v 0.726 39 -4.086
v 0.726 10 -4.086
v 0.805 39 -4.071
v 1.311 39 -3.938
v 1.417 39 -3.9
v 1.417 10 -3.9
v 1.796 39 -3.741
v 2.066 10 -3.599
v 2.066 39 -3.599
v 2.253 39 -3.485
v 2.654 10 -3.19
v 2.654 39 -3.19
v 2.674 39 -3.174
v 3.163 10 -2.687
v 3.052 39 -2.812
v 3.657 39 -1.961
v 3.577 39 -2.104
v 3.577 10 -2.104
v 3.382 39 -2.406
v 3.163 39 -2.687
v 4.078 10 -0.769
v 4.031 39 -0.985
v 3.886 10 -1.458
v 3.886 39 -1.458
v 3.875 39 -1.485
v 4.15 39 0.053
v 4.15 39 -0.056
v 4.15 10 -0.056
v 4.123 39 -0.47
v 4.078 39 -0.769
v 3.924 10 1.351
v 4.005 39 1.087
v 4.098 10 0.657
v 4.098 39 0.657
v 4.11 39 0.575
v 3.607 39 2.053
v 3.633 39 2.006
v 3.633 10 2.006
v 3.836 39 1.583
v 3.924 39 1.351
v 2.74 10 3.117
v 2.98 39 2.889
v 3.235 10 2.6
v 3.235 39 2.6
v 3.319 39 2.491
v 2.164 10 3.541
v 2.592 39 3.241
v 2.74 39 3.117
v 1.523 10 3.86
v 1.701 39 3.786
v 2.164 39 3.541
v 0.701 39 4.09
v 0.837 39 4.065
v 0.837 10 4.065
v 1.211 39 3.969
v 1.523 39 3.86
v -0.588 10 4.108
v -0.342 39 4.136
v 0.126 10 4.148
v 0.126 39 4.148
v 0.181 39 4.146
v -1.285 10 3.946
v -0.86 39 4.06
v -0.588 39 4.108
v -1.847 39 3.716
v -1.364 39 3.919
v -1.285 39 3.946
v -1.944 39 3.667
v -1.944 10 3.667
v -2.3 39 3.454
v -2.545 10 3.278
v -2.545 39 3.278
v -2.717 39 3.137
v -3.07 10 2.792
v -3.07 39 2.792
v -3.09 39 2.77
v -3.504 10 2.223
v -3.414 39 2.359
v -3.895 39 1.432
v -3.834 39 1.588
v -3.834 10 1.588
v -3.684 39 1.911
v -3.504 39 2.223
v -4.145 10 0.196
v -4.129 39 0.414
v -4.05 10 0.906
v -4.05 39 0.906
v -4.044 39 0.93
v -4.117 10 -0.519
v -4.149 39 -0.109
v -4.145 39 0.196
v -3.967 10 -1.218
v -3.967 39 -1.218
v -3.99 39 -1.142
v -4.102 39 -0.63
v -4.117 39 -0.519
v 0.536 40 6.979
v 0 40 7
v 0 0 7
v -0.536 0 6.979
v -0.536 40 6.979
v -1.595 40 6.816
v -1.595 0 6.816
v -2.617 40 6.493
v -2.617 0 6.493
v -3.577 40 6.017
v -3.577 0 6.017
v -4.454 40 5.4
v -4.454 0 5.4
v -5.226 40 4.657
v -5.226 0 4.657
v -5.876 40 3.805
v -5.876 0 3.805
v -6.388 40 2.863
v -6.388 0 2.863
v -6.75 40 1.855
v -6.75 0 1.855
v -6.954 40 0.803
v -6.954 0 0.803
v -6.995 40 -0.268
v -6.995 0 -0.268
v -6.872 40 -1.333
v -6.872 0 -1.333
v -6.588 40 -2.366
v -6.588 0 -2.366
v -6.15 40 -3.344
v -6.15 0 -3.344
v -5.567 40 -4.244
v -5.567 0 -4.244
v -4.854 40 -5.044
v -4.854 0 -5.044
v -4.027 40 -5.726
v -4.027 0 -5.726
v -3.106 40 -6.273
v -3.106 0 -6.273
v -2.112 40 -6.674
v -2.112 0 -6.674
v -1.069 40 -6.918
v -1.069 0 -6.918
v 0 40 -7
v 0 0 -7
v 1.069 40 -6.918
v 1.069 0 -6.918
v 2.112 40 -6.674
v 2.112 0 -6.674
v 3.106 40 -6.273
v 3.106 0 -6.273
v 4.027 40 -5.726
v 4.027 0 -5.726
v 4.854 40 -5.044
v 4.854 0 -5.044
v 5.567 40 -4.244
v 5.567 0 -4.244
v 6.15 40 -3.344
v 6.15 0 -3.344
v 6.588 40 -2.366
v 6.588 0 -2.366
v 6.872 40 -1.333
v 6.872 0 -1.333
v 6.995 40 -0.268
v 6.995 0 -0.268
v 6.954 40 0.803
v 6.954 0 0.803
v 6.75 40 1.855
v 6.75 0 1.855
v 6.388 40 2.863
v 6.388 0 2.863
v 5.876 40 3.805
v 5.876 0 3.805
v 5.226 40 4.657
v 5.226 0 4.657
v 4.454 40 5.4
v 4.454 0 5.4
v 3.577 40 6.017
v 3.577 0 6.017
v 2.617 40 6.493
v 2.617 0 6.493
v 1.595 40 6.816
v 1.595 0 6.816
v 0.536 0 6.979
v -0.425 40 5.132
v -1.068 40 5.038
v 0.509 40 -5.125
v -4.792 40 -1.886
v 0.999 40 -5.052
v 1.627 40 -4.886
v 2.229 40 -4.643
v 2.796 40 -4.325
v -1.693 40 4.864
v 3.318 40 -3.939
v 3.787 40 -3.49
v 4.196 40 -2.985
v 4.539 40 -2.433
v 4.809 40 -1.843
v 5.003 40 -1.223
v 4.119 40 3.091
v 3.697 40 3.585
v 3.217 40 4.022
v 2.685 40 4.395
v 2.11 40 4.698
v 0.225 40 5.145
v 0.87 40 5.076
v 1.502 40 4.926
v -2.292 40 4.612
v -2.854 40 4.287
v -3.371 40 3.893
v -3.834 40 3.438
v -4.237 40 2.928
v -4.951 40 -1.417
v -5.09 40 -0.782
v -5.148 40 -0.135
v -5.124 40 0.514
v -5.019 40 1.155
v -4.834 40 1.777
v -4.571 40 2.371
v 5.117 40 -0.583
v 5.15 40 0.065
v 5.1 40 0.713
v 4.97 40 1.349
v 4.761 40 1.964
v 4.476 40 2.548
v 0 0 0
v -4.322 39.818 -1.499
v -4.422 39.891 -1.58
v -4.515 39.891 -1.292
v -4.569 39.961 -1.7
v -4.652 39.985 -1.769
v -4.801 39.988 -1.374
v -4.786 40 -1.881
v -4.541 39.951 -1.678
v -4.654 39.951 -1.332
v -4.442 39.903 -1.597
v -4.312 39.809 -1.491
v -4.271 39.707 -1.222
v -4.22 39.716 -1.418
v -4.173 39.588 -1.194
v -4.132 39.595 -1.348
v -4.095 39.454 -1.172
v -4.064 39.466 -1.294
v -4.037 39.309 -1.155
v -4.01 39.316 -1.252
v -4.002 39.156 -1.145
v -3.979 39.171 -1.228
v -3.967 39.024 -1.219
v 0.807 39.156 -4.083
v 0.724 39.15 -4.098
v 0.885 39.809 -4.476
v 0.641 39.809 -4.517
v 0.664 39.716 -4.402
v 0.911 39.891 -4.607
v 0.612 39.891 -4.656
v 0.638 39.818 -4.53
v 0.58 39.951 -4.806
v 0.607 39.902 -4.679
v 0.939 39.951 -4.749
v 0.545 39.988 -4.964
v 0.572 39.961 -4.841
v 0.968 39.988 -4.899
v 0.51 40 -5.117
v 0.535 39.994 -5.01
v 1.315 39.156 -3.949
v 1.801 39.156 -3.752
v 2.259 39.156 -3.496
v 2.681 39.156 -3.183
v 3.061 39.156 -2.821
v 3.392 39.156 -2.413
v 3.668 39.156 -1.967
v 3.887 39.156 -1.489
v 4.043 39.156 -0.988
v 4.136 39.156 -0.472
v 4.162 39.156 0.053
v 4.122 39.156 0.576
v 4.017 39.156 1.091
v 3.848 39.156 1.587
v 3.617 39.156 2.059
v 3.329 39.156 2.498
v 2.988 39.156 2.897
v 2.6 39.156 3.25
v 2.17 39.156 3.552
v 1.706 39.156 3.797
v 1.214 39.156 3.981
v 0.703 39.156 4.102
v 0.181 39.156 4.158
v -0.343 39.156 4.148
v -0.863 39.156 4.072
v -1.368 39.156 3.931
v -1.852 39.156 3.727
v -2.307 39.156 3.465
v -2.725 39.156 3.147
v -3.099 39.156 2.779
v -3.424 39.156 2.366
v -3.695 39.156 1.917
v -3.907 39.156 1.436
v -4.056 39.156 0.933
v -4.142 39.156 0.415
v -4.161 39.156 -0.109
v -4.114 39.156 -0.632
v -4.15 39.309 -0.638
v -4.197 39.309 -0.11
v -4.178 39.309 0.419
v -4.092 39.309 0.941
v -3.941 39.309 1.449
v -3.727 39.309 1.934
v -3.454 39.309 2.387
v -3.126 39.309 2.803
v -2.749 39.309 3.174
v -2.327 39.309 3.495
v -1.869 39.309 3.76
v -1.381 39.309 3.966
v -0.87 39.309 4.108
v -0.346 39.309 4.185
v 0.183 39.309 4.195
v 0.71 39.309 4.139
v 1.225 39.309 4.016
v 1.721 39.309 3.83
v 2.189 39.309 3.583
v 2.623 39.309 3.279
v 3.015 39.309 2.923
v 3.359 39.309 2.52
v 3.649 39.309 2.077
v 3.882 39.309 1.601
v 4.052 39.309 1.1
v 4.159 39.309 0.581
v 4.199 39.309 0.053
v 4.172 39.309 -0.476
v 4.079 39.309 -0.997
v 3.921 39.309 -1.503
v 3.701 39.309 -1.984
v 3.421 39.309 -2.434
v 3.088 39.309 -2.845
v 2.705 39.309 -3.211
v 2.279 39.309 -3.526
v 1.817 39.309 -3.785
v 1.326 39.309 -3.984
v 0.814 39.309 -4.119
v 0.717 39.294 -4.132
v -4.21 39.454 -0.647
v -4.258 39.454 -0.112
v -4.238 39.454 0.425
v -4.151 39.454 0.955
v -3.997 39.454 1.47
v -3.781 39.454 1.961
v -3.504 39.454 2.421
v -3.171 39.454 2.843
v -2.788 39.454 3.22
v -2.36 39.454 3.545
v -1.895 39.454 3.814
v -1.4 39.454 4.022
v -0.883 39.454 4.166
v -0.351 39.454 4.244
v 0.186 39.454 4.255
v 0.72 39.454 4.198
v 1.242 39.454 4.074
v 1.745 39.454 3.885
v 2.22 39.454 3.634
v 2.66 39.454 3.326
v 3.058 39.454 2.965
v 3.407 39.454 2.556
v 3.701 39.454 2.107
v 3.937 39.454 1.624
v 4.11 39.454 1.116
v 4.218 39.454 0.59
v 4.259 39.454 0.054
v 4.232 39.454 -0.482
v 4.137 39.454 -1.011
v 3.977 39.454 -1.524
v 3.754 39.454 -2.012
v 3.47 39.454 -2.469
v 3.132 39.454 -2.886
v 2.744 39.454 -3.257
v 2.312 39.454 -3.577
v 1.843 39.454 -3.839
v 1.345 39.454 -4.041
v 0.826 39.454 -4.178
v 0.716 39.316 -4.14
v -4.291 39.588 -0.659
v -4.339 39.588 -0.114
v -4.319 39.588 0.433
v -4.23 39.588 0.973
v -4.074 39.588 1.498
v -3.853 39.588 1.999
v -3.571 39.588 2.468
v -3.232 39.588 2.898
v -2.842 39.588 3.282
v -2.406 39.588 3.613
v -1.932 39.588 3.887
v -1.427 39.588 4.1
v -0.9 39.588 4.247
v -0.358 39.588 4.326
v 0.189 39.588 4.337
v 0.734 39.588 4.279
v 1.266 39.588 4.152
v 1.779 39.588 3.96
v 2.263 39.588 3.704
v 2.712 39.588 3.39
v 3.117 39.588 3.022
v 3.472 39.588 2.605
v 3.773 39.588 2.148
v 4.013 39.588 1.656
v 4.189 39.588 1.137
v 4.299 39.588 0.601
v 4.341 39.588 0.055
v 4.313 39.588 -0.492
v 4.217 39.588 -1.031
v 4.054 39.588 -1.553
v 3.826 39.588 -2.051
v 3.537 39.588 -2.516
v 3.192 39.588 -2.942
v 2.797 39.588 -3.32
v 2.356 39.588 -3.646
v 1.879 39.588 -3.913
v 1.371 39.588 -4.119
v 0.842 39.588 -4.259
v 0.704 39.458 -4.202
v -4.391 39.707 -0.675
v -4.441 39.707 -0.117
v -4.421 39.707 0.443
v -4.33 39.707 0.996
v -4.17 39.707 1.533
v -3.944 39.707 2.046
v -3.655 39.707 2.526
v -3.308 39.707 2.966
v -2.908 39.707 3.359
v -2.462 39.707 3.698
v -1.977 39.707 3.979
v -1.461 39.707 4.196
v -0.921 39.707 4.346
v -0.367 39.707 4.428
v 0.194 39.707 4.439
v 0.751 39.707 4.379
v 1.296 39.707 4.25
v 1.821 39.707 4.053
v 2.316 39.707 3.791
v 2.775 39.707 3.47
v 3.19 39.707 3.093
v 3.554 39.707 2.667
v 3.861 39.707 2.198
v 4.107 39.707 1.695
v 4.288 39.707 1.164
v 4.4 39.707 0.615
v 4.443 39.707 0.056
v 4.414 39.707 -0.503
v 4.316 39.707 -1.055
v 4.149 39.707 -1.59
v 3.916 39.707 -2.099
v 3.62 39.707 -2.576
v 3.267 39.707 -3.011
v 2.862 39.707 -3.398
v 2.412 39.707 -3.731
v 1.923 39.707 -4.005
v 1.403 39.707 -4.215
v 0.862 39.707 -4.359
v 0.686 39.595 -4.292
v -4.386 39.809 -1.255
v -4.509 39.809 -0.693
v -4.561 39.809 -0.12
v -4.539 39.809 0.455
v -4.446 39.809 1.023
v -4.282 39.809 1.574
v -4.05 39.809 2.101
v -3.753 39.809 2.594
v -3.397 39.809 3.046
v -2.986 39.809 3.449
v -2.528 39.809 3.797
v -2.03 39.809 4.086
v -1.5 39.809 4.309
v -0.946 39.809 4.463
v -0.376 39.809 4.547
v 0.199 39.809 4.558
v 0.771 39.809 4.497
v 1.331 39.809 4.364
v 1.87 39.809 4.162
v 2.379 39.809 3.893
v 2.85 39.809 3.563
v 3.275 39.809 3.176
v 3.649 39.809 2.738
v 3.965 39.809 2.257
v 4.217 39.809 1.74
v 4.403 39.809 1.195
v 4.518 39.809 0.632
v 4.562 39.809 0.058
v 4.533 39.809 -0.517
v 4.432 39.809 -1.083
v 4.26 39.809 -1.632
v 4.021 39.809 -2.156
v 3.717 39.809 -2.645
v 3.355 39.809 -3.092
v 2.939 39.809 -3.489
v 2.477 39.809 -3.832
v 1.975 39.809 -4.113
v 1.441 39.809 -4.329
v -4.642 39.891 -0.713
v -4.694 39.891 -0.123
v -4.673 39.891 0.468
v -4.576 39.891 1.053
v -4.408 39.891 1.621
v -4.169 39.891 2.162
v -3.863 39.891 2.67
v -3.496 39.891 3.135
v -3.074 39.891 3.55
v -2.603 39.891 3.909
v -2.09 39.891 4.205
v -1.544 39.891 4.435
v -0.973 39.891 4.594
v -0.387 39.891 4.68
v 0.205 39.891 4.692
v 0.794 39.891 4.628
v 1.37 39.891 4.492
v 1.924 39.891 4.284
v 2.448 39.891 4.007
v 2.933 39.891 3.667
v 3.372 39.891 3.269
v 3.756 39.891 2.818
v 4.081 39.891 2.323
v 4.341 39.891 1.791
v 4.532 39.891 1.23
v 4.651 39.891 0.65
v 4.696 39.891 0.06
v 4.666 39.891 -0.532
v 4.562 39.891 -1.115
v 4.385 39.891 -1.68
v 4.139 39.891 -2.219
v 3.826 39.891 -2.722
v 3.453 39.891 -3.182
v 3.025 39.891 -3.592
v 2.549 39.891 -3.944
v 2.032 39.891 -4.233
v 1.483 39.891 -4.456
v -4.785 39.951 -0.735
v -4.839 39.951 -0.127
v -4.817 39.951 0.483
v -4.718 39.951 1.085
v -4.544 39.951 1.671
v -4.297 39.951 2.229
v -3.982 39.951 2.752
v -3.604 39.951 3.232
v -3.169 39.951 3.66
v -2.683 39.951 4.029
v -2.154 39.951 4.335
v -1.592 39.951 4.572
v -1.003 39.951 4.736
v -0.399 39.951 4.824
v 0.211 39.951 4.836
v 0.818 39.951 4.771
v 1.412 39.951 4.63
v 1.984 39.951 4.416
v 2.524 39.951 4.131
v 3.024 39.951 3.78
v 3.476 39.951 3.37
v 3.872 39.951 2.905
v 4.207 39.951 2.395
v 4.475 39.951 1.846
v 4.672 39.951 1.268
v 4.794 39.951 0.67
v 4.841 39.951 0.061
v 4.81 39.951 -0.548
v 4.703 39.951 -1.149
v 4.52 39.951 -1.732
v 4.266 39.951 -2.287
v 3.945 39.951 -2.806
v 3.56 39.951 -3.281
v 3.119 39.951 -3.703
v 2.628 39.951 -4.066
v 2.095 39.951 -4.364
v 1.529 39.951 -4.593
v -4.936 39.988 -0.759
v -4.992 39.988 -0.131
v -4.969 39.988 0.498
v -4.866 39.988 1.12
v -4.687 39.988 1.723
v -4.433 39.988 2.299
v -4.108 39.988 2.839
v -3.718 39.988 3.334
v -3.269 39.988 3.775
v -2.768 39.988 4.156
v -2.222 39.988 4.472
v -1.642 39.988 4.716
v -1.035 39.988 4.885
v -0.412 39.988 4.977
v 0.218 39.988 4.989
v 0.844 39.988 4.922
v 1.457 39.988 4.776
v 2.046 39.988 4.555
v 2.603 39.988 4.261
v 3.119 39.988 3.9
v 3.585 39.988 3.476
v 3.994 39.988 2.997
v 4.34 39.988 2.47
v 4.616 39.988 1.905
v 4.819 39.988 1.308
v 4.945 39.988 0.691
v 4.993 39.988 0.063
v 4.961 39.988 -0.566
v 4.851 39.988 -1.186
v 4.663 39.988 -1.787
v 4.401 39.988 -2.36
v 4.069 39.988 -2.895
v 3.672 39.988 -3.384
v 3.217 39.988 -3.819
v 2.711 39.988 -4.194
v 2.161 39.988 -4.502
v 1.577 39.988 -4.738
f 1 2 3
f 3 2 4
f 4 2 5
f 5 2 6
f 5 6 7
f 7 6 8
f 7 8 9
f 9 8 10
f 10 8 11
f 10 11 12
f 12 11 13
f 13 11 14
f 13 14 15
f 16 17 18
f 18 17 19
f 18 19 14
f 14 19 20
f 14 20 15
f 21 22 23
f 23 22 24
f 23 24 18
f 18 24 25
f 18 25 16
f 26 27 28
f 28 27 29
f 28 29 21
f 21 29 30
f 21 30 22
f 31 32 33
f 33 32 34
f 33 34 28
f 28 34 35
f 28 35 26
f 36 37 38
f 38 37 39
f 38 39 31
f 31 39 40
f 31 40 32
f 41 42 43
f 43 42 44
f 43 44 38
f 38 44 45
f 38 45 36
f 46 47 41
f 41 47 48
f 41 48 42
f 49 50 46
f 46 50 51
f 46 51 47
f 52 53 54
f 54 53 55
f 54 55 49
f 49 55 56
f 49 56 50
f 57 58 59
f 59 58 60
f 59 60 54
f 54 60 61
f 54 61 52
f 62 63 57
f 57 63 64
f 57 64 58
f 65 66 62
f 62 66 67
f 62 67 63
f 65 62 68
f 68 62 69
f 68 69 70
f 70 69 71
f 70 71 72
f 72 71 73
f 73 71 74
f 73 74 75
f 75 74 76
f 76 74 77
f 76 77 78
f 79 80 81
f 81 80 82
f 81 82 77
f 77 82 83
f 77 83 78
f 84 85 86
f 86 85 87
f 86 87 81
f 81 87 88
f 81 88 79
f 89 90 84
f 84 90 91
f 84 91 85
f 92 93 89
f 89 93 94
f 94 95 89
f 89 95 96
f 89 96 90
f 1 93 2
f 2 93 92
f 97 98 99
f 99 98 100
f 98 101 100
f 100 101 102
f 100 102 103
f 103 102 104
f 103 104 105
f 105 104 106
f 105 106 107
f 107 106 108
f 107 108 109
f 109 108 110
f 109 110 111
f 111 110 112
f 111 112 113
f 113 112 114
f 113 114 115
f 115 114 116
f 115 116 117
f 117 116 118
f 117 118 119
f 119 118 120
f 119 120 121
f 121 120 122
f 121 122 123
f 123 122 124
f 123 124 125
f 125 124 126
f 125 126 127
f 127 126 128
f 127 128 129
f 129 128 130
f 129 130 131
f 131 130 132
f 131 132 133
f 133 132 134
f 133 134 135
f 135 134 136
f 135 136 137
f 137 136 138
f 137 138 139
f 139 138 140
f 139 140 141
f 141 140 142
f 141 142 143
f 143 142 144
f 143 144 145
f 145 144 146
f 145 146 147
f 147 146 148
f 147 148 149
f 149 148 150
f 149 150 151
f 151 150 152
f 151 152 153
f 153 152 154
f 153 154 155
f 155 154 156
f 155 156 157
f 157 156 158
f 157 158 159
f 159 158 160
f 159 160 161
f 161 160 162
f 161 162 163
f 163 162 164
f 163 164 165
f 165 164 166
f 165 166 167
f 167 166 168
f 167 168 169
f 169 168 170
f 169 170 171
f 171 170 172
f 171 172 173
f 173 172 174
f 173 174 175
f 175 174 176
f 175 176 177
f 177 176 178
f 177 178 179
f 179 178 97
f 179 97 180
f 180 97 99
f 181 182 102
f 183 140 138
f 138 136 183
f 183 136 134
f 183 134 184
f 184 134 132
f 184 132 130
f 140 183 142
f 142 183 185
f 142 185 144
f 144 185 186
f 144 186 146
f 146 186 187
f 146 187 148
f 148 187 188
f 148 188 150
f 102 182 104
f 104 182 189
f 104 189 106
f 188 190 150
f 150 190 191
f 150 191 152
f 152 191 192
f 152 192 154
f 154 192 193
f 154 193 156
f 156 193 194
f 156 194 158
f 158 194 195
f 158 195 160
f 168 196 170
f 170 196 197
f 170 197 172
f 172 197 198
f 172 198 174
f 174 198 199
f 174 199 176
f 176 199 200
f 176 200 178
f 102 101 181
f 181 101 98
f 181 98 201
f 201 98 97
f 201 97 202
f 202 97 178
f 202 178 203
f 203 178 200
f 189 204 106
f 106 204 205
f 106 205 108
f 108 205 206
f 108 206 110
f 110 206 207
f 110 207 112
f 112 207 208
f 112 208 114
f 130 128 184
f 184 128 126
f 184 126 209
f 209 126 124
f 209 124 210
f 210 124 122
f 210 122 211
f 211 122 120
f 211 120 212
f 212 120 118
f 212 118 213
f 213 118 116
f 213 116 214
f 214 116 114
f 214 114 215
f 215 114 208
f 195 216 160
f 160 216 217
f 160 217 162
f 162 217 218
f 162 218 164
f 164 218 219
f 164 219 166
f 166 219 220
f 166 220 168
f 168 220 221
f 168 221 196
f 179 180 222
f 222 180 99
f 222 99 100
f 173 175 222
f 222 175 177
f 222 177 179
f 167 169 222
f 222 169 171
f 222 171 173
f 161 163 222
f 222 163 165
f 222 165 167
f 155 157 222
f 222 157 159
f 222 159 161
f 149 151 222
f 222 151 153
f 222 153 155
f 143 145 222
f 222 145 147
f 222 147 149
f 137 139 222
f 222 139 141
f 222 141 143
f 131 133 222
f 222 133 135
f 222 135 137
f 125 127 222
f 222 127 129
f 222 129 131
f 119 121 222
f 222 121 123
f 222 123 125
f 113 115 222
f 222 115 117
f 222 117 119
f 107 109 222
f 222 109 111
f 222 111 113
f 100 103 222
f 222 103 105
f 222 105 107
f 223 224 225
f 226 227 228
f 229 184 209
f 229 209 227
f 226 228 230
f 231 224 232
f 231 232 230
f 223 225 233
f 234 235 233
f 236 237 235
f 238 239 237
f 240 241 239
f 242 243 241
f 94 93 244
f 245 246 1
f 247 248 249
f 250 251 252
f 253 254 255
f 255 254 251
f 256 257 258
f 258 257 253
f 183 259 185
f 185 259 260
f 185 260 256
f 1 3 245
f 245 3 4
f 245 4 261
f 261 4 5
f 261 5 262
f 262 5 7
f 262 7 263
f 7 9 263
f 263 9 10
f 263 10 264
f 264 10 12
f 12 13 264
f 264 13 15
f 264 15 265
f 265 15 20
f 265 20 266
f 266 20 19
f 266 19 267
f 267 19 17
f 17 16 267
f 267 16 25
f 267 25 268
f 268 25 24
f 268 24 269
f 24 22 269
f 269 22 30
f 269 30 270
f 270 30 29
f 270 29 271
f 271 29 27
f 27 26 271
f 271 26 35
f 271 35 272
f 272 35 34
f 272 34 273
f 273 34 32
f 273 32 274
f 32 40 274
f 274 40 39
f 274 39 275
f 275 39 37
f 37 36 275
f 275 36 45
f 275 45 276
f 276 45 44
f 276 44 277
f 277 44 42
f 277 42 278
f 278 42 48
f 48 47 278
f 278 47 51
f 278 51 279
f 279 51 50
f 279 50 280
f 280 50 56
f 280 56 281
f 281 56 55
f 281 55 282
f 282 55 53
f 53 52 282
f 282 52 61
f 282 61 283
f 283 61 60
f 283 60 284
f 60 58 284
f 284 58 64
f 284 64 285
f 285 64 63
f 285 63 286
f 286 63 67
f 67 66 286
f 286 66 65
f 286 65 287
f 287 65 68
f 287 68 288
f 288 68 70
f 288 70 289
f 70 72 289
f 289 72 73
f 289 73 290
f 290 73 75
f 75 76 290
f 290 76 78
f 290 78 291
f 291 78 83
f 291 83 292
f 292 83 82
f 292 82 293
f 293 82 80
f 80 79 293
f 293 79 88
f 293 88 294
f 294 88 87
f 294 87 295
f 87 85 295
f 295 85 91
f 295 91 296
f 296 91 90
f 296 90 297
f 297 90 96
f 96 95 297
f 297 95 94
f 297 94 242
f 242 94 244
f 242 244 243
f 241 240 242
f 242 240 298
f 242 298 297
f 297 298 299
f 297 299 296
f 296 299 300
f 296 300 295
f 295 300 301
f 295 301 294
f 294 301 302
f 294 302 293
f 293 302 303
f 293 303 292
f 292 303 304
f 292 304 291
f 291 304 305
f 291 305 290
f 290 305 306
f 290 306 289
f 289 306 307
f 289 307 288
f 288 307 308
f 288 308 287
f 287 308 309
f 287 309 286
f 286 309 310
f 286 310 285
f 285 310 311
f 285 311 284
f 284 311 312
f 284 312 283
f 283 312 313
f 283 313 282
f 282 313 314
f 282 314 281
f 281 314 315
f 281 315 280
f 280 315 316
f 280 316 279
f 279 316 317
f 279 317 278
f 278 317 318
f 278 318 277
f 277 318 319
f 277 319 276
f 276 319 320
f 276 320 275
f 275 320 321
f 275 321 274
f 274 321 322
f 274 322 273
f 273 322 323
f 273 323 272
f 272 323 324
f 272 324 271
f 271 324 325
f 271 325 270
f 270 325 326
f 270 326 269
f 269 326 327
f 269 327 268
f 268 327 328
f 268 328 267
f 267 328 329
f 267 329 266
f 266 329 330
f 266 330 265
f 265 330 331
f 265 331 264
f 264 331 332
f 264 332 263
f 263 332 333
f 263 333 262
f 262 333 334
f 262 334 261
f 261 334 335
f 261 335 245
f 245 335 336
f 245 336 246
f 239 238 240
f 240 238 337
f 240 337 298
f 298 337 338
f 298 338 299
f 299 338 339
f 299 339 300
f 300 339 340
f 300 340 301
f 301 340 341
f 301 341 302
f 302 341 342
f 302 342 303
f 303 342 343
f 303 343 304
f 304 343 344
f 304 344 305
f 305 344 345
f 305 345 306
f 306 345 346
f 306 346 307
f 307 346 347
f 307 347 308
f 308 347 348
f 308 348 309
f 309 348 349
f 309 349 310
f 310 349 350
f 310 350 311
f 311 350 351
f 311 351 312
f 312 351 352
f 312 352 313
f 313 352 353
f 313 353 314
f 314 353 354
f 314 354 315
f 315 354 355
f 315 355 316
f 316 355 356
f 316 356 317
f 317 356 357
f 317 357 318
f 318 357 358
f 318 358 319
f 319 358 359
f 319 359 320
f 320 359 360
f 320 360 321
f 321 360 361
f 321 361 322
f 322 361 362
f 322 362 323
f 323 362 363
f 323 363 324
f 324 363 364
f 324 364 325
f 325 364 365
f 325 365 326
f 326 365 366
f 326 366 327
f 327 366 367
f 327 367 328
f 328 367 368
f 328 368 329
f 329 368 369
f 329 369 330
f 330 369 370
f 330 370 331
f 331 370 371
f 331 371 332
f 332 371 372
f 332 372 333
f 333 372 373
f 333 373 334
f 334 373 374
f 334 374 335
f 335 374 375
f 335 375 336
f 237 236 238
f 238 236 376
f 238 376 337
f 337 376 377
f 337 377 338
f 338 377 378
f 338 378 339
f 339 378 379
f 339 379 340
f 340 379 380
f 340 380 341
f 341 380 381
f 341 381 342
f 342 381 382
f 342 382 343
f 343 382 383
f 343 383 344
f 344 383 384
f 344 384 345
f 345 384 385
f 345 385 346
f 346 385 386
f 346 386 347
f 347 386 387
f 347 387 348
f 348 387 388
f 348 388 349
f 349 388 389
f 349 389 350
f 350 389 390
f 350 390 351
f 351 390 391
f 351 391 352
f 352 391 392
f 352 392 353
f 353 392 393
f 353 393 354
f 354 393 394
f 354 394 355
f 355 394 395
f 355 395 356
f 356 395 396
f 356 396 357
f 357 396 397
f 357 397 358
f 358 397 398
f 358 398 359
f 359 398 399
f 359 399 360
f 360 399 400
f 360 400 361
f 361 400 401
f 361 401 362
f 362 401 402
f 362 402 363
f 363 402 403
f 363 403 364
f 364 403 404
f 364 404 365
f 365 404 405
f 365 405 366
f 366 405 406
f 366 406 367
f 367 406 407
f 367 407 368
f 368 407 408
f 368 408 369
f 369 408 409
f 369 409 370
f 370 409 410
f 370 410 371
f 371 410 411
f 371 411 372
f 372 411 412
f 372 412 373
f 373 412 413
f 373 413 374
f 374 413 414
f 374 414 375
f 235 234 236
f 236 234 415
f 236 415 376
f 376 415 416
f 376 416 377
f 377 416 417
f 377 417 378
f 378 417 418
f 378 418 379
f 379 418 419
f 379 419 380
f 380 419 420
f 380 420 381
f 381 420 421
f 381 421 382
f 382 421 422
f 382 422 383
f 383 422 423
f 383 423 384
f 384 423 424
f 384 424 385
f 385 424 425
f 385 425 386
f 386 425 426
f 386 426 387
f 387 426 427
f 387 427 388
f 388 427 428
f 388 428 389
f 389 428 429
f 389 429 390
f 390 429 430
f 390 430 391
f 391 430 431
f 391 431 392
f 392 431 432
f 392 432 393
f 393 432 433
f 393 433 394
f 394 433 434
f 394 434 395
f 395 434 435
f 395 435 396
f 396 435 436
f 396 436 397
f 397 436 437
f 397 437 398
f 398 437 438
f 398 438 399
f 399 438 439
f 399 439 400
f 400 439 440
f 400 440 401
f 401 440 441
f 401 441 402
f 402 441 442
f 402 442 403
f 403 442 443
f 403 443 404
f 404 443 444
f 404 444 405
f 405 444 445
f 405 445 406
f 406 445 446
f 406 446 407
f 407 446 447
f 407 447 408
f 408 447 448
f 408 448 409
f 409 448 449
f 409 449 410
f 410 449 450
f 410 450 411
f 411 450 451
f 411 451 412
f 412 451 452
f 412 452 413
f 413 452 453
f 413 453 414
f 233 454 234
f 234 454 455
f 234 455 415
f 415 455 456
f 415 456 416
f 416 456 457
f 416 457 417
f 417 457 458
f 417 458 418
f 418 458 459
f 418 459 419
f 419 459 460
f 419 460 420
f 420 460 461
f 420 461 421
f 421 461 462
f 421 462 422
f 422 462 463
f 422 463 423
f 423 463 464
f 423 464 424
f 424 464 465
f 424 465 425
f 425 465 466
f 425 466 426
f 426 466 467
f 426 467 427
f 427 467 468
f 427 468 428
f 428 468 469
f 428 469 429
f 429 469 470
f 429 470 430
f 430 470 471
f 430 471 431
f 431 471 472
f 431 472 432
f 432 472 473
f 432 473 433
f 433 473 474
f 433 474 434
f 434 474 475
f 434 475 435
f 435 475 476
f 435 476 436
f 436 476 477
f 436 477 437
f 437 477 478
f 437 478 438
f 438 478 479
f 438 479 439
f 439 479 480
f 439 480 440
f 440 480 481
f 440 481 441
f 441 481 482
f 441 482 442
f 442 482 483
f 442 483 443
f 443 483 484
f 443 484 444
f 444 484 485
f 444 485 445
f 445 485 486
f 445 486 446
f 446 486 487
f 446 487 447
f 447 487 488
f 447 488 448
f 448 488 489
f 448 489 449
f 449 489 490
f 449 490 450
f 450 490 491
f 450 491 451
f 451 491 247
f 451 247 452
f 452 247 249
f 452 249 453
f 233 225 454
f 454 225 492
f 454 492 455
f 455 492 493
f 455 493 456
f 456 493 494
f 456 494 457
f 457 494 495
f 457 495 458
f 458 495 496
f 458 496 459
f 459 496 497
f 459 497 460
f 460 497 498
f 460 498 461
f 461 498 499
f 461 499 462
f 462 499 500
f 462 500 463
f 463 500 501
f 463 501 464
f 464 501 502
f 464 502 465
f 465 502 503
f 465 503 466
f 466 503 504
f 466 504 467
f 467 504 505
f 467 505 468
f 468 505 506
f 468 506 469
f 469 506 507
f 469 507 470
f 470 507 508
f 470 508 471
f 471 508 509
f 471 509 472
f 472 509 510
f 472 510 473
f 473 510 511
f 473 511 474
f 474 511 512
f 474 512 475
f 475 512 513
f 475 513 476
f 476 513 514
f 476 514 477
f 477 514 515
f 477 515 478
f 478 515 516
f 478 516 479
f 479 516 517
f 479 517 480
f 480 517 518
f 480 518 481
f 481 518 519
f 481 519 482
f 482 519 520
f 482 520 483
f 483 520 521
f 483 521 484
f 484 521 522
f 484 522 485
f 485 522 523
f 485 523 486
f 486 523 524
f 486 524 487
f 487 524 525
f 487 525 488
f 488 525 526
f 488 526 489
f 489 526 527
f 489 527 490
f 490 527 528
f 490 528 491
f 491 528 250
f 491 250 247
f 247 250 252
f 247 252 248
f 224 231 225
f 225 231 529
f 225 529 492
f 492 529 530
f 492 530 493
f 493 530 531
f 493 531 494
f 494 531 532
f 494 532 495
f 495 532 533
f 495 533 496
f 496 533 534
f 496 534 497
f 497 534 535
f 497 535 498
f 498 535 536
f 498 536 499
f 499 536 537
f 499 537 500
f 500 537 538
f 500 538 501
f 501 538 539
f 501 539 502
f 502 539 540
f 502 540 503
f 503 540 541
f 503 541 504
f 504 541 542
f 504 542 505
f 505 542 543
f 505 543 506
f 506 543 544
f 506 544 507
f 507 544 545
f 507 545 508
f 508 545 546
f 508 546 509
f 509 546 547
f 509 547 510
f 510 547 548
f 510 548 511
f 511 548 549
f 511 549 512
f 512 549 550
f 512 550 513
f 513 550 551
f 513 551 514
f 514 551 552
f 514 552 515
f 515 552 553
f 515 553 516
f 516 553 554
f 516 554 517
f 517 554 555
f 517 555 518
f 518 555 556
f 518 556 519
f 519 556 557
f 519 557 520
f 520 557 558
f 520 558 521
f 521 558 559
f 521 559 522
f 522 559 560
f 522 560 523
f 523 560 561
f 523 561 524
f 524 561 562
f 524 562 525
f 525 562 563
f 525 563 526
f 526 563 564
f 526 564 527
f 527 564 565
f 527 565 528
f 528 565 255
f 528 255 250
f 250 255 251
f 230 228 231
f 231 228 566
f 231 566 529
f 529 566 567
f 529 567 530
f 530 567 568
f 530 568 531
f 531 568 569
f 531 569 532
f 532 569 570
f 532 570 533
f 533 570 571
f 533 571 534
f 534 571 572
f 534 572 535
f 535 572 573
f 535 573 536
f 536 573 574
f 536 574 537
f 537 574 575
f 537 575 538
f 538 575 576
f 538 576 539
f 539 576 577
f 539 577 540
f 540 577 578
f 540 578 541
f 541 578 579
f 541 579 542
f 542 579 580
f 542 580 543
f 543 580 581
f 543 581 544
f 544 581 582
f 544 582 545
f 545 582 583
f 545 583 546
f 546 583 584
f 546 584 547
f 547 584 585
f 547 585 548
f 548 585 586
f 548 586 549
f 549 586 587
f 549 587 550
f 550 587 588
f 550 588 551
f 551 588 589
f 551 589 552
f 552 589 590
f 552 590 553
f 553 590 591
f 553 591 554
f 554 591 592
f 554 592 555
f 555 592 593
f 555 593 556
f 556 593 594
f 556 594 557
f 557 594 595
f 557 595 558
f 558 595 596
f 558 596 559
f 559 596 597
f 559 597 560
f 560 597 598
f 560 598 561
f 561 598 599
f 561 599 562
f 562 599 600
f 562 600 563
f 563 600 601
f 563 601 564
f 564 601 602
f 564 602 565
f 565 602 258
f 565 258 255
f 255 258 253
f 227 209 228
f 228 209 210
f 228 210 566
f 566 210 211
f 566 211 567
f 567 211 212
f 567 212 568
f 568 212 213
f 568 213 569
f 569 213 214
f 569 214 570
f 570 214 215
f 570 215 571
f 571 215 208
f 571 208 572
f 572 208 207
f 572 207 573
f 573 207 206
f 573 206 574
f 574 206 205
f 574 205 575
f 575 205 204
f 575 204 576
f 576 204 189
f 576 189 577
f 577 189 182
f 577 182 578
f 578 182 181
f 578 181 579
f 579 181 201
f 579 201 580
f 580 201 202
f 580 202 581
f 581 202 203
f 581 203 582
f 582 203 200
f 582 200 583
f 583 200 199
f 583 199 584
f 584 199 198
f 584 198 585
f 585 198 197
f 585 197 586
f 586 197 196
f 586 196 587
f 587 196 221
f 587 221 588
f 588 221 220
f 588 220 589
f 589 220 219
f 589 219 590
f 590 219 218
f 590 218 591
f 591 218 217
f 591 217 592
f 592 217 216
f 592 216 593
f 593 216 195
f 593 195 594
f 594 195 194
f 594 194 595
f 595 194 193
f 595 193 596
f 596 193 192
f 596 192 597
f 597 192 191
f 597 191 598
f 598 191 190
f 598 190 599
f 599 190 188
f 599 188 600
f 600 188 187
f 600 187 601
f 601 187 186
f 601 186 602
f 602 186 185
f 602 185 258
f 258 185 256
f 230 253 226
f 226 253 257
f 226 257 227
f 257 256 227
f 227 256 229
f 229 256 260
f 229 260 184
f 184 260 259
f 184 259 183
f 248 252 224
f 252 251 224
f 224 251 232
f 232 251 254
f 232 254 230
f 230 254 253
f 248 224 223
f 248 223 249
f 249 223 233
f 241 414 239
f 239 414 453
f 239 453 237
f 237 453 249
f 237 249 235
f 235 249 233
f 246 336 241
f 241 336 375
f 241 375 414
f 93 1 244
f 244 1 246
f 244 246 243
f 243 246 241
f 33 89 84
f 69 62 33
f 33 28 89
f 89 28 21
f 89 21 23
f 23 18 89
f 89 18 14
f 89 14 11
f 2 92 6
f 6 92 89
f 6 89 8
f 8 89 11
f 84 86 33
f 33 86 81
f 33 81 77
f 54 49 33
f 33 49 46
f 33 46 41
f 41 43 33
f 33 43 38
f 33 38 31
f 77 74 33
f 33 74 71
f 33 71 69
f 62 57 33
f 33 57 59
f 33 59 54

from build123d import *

# Parameters (mm, degrees)
SKETCH1_R           = 7
BOSS_EXTRUDE1_DEPTH = 40
FILLET1_R           = 1
SKETCH2_R           = 4.15
BOSS_EXTRUDE2_DEPTH = 10


with BuildPart() as part:
    # Sketch1 → Boss-Extrude1 (new body)
    with BuildSketch(Plane(origin=(0, 0, 0), x_dir=(1, 0, 0), z_dir=(0, 1, 0))):
        with Locations(Location((0, 0, 0), (0, 0, 270))):
            Circle(SKETCH1_R)
        with BuildLine():
            Line((-3.967096862, 1.218459063), (0.726242752, 4.085960287))
            ThreePointArc((0.726242752, 4.085960287), (2.163660014, -3.541338072), (-3.967096862, 1.218459063))
        make_face(mode=Mode.SUBTRACT)
    extrude(amount=BOSS_EXTRUDE1_DEPTH)

    # Fillet1
    fillet1_edges = [part.edges().sort_by_distance(p)[0] for p in [
        (-1.620427055, 40, -2.652209675),
        (2.163660014, 40, 3.541338072),
    ]]
    fillet(fillet1_edges, radius=FILLET1_R)

    # Sketch2 → Boss-Extrude2 (add)
    with BuildSketch(Plane.XZ):
        Circle(SKETCH2_R)
    extrude(amount=-BOSS_EXTRUDE2_DEPTH)


solid = part.part
